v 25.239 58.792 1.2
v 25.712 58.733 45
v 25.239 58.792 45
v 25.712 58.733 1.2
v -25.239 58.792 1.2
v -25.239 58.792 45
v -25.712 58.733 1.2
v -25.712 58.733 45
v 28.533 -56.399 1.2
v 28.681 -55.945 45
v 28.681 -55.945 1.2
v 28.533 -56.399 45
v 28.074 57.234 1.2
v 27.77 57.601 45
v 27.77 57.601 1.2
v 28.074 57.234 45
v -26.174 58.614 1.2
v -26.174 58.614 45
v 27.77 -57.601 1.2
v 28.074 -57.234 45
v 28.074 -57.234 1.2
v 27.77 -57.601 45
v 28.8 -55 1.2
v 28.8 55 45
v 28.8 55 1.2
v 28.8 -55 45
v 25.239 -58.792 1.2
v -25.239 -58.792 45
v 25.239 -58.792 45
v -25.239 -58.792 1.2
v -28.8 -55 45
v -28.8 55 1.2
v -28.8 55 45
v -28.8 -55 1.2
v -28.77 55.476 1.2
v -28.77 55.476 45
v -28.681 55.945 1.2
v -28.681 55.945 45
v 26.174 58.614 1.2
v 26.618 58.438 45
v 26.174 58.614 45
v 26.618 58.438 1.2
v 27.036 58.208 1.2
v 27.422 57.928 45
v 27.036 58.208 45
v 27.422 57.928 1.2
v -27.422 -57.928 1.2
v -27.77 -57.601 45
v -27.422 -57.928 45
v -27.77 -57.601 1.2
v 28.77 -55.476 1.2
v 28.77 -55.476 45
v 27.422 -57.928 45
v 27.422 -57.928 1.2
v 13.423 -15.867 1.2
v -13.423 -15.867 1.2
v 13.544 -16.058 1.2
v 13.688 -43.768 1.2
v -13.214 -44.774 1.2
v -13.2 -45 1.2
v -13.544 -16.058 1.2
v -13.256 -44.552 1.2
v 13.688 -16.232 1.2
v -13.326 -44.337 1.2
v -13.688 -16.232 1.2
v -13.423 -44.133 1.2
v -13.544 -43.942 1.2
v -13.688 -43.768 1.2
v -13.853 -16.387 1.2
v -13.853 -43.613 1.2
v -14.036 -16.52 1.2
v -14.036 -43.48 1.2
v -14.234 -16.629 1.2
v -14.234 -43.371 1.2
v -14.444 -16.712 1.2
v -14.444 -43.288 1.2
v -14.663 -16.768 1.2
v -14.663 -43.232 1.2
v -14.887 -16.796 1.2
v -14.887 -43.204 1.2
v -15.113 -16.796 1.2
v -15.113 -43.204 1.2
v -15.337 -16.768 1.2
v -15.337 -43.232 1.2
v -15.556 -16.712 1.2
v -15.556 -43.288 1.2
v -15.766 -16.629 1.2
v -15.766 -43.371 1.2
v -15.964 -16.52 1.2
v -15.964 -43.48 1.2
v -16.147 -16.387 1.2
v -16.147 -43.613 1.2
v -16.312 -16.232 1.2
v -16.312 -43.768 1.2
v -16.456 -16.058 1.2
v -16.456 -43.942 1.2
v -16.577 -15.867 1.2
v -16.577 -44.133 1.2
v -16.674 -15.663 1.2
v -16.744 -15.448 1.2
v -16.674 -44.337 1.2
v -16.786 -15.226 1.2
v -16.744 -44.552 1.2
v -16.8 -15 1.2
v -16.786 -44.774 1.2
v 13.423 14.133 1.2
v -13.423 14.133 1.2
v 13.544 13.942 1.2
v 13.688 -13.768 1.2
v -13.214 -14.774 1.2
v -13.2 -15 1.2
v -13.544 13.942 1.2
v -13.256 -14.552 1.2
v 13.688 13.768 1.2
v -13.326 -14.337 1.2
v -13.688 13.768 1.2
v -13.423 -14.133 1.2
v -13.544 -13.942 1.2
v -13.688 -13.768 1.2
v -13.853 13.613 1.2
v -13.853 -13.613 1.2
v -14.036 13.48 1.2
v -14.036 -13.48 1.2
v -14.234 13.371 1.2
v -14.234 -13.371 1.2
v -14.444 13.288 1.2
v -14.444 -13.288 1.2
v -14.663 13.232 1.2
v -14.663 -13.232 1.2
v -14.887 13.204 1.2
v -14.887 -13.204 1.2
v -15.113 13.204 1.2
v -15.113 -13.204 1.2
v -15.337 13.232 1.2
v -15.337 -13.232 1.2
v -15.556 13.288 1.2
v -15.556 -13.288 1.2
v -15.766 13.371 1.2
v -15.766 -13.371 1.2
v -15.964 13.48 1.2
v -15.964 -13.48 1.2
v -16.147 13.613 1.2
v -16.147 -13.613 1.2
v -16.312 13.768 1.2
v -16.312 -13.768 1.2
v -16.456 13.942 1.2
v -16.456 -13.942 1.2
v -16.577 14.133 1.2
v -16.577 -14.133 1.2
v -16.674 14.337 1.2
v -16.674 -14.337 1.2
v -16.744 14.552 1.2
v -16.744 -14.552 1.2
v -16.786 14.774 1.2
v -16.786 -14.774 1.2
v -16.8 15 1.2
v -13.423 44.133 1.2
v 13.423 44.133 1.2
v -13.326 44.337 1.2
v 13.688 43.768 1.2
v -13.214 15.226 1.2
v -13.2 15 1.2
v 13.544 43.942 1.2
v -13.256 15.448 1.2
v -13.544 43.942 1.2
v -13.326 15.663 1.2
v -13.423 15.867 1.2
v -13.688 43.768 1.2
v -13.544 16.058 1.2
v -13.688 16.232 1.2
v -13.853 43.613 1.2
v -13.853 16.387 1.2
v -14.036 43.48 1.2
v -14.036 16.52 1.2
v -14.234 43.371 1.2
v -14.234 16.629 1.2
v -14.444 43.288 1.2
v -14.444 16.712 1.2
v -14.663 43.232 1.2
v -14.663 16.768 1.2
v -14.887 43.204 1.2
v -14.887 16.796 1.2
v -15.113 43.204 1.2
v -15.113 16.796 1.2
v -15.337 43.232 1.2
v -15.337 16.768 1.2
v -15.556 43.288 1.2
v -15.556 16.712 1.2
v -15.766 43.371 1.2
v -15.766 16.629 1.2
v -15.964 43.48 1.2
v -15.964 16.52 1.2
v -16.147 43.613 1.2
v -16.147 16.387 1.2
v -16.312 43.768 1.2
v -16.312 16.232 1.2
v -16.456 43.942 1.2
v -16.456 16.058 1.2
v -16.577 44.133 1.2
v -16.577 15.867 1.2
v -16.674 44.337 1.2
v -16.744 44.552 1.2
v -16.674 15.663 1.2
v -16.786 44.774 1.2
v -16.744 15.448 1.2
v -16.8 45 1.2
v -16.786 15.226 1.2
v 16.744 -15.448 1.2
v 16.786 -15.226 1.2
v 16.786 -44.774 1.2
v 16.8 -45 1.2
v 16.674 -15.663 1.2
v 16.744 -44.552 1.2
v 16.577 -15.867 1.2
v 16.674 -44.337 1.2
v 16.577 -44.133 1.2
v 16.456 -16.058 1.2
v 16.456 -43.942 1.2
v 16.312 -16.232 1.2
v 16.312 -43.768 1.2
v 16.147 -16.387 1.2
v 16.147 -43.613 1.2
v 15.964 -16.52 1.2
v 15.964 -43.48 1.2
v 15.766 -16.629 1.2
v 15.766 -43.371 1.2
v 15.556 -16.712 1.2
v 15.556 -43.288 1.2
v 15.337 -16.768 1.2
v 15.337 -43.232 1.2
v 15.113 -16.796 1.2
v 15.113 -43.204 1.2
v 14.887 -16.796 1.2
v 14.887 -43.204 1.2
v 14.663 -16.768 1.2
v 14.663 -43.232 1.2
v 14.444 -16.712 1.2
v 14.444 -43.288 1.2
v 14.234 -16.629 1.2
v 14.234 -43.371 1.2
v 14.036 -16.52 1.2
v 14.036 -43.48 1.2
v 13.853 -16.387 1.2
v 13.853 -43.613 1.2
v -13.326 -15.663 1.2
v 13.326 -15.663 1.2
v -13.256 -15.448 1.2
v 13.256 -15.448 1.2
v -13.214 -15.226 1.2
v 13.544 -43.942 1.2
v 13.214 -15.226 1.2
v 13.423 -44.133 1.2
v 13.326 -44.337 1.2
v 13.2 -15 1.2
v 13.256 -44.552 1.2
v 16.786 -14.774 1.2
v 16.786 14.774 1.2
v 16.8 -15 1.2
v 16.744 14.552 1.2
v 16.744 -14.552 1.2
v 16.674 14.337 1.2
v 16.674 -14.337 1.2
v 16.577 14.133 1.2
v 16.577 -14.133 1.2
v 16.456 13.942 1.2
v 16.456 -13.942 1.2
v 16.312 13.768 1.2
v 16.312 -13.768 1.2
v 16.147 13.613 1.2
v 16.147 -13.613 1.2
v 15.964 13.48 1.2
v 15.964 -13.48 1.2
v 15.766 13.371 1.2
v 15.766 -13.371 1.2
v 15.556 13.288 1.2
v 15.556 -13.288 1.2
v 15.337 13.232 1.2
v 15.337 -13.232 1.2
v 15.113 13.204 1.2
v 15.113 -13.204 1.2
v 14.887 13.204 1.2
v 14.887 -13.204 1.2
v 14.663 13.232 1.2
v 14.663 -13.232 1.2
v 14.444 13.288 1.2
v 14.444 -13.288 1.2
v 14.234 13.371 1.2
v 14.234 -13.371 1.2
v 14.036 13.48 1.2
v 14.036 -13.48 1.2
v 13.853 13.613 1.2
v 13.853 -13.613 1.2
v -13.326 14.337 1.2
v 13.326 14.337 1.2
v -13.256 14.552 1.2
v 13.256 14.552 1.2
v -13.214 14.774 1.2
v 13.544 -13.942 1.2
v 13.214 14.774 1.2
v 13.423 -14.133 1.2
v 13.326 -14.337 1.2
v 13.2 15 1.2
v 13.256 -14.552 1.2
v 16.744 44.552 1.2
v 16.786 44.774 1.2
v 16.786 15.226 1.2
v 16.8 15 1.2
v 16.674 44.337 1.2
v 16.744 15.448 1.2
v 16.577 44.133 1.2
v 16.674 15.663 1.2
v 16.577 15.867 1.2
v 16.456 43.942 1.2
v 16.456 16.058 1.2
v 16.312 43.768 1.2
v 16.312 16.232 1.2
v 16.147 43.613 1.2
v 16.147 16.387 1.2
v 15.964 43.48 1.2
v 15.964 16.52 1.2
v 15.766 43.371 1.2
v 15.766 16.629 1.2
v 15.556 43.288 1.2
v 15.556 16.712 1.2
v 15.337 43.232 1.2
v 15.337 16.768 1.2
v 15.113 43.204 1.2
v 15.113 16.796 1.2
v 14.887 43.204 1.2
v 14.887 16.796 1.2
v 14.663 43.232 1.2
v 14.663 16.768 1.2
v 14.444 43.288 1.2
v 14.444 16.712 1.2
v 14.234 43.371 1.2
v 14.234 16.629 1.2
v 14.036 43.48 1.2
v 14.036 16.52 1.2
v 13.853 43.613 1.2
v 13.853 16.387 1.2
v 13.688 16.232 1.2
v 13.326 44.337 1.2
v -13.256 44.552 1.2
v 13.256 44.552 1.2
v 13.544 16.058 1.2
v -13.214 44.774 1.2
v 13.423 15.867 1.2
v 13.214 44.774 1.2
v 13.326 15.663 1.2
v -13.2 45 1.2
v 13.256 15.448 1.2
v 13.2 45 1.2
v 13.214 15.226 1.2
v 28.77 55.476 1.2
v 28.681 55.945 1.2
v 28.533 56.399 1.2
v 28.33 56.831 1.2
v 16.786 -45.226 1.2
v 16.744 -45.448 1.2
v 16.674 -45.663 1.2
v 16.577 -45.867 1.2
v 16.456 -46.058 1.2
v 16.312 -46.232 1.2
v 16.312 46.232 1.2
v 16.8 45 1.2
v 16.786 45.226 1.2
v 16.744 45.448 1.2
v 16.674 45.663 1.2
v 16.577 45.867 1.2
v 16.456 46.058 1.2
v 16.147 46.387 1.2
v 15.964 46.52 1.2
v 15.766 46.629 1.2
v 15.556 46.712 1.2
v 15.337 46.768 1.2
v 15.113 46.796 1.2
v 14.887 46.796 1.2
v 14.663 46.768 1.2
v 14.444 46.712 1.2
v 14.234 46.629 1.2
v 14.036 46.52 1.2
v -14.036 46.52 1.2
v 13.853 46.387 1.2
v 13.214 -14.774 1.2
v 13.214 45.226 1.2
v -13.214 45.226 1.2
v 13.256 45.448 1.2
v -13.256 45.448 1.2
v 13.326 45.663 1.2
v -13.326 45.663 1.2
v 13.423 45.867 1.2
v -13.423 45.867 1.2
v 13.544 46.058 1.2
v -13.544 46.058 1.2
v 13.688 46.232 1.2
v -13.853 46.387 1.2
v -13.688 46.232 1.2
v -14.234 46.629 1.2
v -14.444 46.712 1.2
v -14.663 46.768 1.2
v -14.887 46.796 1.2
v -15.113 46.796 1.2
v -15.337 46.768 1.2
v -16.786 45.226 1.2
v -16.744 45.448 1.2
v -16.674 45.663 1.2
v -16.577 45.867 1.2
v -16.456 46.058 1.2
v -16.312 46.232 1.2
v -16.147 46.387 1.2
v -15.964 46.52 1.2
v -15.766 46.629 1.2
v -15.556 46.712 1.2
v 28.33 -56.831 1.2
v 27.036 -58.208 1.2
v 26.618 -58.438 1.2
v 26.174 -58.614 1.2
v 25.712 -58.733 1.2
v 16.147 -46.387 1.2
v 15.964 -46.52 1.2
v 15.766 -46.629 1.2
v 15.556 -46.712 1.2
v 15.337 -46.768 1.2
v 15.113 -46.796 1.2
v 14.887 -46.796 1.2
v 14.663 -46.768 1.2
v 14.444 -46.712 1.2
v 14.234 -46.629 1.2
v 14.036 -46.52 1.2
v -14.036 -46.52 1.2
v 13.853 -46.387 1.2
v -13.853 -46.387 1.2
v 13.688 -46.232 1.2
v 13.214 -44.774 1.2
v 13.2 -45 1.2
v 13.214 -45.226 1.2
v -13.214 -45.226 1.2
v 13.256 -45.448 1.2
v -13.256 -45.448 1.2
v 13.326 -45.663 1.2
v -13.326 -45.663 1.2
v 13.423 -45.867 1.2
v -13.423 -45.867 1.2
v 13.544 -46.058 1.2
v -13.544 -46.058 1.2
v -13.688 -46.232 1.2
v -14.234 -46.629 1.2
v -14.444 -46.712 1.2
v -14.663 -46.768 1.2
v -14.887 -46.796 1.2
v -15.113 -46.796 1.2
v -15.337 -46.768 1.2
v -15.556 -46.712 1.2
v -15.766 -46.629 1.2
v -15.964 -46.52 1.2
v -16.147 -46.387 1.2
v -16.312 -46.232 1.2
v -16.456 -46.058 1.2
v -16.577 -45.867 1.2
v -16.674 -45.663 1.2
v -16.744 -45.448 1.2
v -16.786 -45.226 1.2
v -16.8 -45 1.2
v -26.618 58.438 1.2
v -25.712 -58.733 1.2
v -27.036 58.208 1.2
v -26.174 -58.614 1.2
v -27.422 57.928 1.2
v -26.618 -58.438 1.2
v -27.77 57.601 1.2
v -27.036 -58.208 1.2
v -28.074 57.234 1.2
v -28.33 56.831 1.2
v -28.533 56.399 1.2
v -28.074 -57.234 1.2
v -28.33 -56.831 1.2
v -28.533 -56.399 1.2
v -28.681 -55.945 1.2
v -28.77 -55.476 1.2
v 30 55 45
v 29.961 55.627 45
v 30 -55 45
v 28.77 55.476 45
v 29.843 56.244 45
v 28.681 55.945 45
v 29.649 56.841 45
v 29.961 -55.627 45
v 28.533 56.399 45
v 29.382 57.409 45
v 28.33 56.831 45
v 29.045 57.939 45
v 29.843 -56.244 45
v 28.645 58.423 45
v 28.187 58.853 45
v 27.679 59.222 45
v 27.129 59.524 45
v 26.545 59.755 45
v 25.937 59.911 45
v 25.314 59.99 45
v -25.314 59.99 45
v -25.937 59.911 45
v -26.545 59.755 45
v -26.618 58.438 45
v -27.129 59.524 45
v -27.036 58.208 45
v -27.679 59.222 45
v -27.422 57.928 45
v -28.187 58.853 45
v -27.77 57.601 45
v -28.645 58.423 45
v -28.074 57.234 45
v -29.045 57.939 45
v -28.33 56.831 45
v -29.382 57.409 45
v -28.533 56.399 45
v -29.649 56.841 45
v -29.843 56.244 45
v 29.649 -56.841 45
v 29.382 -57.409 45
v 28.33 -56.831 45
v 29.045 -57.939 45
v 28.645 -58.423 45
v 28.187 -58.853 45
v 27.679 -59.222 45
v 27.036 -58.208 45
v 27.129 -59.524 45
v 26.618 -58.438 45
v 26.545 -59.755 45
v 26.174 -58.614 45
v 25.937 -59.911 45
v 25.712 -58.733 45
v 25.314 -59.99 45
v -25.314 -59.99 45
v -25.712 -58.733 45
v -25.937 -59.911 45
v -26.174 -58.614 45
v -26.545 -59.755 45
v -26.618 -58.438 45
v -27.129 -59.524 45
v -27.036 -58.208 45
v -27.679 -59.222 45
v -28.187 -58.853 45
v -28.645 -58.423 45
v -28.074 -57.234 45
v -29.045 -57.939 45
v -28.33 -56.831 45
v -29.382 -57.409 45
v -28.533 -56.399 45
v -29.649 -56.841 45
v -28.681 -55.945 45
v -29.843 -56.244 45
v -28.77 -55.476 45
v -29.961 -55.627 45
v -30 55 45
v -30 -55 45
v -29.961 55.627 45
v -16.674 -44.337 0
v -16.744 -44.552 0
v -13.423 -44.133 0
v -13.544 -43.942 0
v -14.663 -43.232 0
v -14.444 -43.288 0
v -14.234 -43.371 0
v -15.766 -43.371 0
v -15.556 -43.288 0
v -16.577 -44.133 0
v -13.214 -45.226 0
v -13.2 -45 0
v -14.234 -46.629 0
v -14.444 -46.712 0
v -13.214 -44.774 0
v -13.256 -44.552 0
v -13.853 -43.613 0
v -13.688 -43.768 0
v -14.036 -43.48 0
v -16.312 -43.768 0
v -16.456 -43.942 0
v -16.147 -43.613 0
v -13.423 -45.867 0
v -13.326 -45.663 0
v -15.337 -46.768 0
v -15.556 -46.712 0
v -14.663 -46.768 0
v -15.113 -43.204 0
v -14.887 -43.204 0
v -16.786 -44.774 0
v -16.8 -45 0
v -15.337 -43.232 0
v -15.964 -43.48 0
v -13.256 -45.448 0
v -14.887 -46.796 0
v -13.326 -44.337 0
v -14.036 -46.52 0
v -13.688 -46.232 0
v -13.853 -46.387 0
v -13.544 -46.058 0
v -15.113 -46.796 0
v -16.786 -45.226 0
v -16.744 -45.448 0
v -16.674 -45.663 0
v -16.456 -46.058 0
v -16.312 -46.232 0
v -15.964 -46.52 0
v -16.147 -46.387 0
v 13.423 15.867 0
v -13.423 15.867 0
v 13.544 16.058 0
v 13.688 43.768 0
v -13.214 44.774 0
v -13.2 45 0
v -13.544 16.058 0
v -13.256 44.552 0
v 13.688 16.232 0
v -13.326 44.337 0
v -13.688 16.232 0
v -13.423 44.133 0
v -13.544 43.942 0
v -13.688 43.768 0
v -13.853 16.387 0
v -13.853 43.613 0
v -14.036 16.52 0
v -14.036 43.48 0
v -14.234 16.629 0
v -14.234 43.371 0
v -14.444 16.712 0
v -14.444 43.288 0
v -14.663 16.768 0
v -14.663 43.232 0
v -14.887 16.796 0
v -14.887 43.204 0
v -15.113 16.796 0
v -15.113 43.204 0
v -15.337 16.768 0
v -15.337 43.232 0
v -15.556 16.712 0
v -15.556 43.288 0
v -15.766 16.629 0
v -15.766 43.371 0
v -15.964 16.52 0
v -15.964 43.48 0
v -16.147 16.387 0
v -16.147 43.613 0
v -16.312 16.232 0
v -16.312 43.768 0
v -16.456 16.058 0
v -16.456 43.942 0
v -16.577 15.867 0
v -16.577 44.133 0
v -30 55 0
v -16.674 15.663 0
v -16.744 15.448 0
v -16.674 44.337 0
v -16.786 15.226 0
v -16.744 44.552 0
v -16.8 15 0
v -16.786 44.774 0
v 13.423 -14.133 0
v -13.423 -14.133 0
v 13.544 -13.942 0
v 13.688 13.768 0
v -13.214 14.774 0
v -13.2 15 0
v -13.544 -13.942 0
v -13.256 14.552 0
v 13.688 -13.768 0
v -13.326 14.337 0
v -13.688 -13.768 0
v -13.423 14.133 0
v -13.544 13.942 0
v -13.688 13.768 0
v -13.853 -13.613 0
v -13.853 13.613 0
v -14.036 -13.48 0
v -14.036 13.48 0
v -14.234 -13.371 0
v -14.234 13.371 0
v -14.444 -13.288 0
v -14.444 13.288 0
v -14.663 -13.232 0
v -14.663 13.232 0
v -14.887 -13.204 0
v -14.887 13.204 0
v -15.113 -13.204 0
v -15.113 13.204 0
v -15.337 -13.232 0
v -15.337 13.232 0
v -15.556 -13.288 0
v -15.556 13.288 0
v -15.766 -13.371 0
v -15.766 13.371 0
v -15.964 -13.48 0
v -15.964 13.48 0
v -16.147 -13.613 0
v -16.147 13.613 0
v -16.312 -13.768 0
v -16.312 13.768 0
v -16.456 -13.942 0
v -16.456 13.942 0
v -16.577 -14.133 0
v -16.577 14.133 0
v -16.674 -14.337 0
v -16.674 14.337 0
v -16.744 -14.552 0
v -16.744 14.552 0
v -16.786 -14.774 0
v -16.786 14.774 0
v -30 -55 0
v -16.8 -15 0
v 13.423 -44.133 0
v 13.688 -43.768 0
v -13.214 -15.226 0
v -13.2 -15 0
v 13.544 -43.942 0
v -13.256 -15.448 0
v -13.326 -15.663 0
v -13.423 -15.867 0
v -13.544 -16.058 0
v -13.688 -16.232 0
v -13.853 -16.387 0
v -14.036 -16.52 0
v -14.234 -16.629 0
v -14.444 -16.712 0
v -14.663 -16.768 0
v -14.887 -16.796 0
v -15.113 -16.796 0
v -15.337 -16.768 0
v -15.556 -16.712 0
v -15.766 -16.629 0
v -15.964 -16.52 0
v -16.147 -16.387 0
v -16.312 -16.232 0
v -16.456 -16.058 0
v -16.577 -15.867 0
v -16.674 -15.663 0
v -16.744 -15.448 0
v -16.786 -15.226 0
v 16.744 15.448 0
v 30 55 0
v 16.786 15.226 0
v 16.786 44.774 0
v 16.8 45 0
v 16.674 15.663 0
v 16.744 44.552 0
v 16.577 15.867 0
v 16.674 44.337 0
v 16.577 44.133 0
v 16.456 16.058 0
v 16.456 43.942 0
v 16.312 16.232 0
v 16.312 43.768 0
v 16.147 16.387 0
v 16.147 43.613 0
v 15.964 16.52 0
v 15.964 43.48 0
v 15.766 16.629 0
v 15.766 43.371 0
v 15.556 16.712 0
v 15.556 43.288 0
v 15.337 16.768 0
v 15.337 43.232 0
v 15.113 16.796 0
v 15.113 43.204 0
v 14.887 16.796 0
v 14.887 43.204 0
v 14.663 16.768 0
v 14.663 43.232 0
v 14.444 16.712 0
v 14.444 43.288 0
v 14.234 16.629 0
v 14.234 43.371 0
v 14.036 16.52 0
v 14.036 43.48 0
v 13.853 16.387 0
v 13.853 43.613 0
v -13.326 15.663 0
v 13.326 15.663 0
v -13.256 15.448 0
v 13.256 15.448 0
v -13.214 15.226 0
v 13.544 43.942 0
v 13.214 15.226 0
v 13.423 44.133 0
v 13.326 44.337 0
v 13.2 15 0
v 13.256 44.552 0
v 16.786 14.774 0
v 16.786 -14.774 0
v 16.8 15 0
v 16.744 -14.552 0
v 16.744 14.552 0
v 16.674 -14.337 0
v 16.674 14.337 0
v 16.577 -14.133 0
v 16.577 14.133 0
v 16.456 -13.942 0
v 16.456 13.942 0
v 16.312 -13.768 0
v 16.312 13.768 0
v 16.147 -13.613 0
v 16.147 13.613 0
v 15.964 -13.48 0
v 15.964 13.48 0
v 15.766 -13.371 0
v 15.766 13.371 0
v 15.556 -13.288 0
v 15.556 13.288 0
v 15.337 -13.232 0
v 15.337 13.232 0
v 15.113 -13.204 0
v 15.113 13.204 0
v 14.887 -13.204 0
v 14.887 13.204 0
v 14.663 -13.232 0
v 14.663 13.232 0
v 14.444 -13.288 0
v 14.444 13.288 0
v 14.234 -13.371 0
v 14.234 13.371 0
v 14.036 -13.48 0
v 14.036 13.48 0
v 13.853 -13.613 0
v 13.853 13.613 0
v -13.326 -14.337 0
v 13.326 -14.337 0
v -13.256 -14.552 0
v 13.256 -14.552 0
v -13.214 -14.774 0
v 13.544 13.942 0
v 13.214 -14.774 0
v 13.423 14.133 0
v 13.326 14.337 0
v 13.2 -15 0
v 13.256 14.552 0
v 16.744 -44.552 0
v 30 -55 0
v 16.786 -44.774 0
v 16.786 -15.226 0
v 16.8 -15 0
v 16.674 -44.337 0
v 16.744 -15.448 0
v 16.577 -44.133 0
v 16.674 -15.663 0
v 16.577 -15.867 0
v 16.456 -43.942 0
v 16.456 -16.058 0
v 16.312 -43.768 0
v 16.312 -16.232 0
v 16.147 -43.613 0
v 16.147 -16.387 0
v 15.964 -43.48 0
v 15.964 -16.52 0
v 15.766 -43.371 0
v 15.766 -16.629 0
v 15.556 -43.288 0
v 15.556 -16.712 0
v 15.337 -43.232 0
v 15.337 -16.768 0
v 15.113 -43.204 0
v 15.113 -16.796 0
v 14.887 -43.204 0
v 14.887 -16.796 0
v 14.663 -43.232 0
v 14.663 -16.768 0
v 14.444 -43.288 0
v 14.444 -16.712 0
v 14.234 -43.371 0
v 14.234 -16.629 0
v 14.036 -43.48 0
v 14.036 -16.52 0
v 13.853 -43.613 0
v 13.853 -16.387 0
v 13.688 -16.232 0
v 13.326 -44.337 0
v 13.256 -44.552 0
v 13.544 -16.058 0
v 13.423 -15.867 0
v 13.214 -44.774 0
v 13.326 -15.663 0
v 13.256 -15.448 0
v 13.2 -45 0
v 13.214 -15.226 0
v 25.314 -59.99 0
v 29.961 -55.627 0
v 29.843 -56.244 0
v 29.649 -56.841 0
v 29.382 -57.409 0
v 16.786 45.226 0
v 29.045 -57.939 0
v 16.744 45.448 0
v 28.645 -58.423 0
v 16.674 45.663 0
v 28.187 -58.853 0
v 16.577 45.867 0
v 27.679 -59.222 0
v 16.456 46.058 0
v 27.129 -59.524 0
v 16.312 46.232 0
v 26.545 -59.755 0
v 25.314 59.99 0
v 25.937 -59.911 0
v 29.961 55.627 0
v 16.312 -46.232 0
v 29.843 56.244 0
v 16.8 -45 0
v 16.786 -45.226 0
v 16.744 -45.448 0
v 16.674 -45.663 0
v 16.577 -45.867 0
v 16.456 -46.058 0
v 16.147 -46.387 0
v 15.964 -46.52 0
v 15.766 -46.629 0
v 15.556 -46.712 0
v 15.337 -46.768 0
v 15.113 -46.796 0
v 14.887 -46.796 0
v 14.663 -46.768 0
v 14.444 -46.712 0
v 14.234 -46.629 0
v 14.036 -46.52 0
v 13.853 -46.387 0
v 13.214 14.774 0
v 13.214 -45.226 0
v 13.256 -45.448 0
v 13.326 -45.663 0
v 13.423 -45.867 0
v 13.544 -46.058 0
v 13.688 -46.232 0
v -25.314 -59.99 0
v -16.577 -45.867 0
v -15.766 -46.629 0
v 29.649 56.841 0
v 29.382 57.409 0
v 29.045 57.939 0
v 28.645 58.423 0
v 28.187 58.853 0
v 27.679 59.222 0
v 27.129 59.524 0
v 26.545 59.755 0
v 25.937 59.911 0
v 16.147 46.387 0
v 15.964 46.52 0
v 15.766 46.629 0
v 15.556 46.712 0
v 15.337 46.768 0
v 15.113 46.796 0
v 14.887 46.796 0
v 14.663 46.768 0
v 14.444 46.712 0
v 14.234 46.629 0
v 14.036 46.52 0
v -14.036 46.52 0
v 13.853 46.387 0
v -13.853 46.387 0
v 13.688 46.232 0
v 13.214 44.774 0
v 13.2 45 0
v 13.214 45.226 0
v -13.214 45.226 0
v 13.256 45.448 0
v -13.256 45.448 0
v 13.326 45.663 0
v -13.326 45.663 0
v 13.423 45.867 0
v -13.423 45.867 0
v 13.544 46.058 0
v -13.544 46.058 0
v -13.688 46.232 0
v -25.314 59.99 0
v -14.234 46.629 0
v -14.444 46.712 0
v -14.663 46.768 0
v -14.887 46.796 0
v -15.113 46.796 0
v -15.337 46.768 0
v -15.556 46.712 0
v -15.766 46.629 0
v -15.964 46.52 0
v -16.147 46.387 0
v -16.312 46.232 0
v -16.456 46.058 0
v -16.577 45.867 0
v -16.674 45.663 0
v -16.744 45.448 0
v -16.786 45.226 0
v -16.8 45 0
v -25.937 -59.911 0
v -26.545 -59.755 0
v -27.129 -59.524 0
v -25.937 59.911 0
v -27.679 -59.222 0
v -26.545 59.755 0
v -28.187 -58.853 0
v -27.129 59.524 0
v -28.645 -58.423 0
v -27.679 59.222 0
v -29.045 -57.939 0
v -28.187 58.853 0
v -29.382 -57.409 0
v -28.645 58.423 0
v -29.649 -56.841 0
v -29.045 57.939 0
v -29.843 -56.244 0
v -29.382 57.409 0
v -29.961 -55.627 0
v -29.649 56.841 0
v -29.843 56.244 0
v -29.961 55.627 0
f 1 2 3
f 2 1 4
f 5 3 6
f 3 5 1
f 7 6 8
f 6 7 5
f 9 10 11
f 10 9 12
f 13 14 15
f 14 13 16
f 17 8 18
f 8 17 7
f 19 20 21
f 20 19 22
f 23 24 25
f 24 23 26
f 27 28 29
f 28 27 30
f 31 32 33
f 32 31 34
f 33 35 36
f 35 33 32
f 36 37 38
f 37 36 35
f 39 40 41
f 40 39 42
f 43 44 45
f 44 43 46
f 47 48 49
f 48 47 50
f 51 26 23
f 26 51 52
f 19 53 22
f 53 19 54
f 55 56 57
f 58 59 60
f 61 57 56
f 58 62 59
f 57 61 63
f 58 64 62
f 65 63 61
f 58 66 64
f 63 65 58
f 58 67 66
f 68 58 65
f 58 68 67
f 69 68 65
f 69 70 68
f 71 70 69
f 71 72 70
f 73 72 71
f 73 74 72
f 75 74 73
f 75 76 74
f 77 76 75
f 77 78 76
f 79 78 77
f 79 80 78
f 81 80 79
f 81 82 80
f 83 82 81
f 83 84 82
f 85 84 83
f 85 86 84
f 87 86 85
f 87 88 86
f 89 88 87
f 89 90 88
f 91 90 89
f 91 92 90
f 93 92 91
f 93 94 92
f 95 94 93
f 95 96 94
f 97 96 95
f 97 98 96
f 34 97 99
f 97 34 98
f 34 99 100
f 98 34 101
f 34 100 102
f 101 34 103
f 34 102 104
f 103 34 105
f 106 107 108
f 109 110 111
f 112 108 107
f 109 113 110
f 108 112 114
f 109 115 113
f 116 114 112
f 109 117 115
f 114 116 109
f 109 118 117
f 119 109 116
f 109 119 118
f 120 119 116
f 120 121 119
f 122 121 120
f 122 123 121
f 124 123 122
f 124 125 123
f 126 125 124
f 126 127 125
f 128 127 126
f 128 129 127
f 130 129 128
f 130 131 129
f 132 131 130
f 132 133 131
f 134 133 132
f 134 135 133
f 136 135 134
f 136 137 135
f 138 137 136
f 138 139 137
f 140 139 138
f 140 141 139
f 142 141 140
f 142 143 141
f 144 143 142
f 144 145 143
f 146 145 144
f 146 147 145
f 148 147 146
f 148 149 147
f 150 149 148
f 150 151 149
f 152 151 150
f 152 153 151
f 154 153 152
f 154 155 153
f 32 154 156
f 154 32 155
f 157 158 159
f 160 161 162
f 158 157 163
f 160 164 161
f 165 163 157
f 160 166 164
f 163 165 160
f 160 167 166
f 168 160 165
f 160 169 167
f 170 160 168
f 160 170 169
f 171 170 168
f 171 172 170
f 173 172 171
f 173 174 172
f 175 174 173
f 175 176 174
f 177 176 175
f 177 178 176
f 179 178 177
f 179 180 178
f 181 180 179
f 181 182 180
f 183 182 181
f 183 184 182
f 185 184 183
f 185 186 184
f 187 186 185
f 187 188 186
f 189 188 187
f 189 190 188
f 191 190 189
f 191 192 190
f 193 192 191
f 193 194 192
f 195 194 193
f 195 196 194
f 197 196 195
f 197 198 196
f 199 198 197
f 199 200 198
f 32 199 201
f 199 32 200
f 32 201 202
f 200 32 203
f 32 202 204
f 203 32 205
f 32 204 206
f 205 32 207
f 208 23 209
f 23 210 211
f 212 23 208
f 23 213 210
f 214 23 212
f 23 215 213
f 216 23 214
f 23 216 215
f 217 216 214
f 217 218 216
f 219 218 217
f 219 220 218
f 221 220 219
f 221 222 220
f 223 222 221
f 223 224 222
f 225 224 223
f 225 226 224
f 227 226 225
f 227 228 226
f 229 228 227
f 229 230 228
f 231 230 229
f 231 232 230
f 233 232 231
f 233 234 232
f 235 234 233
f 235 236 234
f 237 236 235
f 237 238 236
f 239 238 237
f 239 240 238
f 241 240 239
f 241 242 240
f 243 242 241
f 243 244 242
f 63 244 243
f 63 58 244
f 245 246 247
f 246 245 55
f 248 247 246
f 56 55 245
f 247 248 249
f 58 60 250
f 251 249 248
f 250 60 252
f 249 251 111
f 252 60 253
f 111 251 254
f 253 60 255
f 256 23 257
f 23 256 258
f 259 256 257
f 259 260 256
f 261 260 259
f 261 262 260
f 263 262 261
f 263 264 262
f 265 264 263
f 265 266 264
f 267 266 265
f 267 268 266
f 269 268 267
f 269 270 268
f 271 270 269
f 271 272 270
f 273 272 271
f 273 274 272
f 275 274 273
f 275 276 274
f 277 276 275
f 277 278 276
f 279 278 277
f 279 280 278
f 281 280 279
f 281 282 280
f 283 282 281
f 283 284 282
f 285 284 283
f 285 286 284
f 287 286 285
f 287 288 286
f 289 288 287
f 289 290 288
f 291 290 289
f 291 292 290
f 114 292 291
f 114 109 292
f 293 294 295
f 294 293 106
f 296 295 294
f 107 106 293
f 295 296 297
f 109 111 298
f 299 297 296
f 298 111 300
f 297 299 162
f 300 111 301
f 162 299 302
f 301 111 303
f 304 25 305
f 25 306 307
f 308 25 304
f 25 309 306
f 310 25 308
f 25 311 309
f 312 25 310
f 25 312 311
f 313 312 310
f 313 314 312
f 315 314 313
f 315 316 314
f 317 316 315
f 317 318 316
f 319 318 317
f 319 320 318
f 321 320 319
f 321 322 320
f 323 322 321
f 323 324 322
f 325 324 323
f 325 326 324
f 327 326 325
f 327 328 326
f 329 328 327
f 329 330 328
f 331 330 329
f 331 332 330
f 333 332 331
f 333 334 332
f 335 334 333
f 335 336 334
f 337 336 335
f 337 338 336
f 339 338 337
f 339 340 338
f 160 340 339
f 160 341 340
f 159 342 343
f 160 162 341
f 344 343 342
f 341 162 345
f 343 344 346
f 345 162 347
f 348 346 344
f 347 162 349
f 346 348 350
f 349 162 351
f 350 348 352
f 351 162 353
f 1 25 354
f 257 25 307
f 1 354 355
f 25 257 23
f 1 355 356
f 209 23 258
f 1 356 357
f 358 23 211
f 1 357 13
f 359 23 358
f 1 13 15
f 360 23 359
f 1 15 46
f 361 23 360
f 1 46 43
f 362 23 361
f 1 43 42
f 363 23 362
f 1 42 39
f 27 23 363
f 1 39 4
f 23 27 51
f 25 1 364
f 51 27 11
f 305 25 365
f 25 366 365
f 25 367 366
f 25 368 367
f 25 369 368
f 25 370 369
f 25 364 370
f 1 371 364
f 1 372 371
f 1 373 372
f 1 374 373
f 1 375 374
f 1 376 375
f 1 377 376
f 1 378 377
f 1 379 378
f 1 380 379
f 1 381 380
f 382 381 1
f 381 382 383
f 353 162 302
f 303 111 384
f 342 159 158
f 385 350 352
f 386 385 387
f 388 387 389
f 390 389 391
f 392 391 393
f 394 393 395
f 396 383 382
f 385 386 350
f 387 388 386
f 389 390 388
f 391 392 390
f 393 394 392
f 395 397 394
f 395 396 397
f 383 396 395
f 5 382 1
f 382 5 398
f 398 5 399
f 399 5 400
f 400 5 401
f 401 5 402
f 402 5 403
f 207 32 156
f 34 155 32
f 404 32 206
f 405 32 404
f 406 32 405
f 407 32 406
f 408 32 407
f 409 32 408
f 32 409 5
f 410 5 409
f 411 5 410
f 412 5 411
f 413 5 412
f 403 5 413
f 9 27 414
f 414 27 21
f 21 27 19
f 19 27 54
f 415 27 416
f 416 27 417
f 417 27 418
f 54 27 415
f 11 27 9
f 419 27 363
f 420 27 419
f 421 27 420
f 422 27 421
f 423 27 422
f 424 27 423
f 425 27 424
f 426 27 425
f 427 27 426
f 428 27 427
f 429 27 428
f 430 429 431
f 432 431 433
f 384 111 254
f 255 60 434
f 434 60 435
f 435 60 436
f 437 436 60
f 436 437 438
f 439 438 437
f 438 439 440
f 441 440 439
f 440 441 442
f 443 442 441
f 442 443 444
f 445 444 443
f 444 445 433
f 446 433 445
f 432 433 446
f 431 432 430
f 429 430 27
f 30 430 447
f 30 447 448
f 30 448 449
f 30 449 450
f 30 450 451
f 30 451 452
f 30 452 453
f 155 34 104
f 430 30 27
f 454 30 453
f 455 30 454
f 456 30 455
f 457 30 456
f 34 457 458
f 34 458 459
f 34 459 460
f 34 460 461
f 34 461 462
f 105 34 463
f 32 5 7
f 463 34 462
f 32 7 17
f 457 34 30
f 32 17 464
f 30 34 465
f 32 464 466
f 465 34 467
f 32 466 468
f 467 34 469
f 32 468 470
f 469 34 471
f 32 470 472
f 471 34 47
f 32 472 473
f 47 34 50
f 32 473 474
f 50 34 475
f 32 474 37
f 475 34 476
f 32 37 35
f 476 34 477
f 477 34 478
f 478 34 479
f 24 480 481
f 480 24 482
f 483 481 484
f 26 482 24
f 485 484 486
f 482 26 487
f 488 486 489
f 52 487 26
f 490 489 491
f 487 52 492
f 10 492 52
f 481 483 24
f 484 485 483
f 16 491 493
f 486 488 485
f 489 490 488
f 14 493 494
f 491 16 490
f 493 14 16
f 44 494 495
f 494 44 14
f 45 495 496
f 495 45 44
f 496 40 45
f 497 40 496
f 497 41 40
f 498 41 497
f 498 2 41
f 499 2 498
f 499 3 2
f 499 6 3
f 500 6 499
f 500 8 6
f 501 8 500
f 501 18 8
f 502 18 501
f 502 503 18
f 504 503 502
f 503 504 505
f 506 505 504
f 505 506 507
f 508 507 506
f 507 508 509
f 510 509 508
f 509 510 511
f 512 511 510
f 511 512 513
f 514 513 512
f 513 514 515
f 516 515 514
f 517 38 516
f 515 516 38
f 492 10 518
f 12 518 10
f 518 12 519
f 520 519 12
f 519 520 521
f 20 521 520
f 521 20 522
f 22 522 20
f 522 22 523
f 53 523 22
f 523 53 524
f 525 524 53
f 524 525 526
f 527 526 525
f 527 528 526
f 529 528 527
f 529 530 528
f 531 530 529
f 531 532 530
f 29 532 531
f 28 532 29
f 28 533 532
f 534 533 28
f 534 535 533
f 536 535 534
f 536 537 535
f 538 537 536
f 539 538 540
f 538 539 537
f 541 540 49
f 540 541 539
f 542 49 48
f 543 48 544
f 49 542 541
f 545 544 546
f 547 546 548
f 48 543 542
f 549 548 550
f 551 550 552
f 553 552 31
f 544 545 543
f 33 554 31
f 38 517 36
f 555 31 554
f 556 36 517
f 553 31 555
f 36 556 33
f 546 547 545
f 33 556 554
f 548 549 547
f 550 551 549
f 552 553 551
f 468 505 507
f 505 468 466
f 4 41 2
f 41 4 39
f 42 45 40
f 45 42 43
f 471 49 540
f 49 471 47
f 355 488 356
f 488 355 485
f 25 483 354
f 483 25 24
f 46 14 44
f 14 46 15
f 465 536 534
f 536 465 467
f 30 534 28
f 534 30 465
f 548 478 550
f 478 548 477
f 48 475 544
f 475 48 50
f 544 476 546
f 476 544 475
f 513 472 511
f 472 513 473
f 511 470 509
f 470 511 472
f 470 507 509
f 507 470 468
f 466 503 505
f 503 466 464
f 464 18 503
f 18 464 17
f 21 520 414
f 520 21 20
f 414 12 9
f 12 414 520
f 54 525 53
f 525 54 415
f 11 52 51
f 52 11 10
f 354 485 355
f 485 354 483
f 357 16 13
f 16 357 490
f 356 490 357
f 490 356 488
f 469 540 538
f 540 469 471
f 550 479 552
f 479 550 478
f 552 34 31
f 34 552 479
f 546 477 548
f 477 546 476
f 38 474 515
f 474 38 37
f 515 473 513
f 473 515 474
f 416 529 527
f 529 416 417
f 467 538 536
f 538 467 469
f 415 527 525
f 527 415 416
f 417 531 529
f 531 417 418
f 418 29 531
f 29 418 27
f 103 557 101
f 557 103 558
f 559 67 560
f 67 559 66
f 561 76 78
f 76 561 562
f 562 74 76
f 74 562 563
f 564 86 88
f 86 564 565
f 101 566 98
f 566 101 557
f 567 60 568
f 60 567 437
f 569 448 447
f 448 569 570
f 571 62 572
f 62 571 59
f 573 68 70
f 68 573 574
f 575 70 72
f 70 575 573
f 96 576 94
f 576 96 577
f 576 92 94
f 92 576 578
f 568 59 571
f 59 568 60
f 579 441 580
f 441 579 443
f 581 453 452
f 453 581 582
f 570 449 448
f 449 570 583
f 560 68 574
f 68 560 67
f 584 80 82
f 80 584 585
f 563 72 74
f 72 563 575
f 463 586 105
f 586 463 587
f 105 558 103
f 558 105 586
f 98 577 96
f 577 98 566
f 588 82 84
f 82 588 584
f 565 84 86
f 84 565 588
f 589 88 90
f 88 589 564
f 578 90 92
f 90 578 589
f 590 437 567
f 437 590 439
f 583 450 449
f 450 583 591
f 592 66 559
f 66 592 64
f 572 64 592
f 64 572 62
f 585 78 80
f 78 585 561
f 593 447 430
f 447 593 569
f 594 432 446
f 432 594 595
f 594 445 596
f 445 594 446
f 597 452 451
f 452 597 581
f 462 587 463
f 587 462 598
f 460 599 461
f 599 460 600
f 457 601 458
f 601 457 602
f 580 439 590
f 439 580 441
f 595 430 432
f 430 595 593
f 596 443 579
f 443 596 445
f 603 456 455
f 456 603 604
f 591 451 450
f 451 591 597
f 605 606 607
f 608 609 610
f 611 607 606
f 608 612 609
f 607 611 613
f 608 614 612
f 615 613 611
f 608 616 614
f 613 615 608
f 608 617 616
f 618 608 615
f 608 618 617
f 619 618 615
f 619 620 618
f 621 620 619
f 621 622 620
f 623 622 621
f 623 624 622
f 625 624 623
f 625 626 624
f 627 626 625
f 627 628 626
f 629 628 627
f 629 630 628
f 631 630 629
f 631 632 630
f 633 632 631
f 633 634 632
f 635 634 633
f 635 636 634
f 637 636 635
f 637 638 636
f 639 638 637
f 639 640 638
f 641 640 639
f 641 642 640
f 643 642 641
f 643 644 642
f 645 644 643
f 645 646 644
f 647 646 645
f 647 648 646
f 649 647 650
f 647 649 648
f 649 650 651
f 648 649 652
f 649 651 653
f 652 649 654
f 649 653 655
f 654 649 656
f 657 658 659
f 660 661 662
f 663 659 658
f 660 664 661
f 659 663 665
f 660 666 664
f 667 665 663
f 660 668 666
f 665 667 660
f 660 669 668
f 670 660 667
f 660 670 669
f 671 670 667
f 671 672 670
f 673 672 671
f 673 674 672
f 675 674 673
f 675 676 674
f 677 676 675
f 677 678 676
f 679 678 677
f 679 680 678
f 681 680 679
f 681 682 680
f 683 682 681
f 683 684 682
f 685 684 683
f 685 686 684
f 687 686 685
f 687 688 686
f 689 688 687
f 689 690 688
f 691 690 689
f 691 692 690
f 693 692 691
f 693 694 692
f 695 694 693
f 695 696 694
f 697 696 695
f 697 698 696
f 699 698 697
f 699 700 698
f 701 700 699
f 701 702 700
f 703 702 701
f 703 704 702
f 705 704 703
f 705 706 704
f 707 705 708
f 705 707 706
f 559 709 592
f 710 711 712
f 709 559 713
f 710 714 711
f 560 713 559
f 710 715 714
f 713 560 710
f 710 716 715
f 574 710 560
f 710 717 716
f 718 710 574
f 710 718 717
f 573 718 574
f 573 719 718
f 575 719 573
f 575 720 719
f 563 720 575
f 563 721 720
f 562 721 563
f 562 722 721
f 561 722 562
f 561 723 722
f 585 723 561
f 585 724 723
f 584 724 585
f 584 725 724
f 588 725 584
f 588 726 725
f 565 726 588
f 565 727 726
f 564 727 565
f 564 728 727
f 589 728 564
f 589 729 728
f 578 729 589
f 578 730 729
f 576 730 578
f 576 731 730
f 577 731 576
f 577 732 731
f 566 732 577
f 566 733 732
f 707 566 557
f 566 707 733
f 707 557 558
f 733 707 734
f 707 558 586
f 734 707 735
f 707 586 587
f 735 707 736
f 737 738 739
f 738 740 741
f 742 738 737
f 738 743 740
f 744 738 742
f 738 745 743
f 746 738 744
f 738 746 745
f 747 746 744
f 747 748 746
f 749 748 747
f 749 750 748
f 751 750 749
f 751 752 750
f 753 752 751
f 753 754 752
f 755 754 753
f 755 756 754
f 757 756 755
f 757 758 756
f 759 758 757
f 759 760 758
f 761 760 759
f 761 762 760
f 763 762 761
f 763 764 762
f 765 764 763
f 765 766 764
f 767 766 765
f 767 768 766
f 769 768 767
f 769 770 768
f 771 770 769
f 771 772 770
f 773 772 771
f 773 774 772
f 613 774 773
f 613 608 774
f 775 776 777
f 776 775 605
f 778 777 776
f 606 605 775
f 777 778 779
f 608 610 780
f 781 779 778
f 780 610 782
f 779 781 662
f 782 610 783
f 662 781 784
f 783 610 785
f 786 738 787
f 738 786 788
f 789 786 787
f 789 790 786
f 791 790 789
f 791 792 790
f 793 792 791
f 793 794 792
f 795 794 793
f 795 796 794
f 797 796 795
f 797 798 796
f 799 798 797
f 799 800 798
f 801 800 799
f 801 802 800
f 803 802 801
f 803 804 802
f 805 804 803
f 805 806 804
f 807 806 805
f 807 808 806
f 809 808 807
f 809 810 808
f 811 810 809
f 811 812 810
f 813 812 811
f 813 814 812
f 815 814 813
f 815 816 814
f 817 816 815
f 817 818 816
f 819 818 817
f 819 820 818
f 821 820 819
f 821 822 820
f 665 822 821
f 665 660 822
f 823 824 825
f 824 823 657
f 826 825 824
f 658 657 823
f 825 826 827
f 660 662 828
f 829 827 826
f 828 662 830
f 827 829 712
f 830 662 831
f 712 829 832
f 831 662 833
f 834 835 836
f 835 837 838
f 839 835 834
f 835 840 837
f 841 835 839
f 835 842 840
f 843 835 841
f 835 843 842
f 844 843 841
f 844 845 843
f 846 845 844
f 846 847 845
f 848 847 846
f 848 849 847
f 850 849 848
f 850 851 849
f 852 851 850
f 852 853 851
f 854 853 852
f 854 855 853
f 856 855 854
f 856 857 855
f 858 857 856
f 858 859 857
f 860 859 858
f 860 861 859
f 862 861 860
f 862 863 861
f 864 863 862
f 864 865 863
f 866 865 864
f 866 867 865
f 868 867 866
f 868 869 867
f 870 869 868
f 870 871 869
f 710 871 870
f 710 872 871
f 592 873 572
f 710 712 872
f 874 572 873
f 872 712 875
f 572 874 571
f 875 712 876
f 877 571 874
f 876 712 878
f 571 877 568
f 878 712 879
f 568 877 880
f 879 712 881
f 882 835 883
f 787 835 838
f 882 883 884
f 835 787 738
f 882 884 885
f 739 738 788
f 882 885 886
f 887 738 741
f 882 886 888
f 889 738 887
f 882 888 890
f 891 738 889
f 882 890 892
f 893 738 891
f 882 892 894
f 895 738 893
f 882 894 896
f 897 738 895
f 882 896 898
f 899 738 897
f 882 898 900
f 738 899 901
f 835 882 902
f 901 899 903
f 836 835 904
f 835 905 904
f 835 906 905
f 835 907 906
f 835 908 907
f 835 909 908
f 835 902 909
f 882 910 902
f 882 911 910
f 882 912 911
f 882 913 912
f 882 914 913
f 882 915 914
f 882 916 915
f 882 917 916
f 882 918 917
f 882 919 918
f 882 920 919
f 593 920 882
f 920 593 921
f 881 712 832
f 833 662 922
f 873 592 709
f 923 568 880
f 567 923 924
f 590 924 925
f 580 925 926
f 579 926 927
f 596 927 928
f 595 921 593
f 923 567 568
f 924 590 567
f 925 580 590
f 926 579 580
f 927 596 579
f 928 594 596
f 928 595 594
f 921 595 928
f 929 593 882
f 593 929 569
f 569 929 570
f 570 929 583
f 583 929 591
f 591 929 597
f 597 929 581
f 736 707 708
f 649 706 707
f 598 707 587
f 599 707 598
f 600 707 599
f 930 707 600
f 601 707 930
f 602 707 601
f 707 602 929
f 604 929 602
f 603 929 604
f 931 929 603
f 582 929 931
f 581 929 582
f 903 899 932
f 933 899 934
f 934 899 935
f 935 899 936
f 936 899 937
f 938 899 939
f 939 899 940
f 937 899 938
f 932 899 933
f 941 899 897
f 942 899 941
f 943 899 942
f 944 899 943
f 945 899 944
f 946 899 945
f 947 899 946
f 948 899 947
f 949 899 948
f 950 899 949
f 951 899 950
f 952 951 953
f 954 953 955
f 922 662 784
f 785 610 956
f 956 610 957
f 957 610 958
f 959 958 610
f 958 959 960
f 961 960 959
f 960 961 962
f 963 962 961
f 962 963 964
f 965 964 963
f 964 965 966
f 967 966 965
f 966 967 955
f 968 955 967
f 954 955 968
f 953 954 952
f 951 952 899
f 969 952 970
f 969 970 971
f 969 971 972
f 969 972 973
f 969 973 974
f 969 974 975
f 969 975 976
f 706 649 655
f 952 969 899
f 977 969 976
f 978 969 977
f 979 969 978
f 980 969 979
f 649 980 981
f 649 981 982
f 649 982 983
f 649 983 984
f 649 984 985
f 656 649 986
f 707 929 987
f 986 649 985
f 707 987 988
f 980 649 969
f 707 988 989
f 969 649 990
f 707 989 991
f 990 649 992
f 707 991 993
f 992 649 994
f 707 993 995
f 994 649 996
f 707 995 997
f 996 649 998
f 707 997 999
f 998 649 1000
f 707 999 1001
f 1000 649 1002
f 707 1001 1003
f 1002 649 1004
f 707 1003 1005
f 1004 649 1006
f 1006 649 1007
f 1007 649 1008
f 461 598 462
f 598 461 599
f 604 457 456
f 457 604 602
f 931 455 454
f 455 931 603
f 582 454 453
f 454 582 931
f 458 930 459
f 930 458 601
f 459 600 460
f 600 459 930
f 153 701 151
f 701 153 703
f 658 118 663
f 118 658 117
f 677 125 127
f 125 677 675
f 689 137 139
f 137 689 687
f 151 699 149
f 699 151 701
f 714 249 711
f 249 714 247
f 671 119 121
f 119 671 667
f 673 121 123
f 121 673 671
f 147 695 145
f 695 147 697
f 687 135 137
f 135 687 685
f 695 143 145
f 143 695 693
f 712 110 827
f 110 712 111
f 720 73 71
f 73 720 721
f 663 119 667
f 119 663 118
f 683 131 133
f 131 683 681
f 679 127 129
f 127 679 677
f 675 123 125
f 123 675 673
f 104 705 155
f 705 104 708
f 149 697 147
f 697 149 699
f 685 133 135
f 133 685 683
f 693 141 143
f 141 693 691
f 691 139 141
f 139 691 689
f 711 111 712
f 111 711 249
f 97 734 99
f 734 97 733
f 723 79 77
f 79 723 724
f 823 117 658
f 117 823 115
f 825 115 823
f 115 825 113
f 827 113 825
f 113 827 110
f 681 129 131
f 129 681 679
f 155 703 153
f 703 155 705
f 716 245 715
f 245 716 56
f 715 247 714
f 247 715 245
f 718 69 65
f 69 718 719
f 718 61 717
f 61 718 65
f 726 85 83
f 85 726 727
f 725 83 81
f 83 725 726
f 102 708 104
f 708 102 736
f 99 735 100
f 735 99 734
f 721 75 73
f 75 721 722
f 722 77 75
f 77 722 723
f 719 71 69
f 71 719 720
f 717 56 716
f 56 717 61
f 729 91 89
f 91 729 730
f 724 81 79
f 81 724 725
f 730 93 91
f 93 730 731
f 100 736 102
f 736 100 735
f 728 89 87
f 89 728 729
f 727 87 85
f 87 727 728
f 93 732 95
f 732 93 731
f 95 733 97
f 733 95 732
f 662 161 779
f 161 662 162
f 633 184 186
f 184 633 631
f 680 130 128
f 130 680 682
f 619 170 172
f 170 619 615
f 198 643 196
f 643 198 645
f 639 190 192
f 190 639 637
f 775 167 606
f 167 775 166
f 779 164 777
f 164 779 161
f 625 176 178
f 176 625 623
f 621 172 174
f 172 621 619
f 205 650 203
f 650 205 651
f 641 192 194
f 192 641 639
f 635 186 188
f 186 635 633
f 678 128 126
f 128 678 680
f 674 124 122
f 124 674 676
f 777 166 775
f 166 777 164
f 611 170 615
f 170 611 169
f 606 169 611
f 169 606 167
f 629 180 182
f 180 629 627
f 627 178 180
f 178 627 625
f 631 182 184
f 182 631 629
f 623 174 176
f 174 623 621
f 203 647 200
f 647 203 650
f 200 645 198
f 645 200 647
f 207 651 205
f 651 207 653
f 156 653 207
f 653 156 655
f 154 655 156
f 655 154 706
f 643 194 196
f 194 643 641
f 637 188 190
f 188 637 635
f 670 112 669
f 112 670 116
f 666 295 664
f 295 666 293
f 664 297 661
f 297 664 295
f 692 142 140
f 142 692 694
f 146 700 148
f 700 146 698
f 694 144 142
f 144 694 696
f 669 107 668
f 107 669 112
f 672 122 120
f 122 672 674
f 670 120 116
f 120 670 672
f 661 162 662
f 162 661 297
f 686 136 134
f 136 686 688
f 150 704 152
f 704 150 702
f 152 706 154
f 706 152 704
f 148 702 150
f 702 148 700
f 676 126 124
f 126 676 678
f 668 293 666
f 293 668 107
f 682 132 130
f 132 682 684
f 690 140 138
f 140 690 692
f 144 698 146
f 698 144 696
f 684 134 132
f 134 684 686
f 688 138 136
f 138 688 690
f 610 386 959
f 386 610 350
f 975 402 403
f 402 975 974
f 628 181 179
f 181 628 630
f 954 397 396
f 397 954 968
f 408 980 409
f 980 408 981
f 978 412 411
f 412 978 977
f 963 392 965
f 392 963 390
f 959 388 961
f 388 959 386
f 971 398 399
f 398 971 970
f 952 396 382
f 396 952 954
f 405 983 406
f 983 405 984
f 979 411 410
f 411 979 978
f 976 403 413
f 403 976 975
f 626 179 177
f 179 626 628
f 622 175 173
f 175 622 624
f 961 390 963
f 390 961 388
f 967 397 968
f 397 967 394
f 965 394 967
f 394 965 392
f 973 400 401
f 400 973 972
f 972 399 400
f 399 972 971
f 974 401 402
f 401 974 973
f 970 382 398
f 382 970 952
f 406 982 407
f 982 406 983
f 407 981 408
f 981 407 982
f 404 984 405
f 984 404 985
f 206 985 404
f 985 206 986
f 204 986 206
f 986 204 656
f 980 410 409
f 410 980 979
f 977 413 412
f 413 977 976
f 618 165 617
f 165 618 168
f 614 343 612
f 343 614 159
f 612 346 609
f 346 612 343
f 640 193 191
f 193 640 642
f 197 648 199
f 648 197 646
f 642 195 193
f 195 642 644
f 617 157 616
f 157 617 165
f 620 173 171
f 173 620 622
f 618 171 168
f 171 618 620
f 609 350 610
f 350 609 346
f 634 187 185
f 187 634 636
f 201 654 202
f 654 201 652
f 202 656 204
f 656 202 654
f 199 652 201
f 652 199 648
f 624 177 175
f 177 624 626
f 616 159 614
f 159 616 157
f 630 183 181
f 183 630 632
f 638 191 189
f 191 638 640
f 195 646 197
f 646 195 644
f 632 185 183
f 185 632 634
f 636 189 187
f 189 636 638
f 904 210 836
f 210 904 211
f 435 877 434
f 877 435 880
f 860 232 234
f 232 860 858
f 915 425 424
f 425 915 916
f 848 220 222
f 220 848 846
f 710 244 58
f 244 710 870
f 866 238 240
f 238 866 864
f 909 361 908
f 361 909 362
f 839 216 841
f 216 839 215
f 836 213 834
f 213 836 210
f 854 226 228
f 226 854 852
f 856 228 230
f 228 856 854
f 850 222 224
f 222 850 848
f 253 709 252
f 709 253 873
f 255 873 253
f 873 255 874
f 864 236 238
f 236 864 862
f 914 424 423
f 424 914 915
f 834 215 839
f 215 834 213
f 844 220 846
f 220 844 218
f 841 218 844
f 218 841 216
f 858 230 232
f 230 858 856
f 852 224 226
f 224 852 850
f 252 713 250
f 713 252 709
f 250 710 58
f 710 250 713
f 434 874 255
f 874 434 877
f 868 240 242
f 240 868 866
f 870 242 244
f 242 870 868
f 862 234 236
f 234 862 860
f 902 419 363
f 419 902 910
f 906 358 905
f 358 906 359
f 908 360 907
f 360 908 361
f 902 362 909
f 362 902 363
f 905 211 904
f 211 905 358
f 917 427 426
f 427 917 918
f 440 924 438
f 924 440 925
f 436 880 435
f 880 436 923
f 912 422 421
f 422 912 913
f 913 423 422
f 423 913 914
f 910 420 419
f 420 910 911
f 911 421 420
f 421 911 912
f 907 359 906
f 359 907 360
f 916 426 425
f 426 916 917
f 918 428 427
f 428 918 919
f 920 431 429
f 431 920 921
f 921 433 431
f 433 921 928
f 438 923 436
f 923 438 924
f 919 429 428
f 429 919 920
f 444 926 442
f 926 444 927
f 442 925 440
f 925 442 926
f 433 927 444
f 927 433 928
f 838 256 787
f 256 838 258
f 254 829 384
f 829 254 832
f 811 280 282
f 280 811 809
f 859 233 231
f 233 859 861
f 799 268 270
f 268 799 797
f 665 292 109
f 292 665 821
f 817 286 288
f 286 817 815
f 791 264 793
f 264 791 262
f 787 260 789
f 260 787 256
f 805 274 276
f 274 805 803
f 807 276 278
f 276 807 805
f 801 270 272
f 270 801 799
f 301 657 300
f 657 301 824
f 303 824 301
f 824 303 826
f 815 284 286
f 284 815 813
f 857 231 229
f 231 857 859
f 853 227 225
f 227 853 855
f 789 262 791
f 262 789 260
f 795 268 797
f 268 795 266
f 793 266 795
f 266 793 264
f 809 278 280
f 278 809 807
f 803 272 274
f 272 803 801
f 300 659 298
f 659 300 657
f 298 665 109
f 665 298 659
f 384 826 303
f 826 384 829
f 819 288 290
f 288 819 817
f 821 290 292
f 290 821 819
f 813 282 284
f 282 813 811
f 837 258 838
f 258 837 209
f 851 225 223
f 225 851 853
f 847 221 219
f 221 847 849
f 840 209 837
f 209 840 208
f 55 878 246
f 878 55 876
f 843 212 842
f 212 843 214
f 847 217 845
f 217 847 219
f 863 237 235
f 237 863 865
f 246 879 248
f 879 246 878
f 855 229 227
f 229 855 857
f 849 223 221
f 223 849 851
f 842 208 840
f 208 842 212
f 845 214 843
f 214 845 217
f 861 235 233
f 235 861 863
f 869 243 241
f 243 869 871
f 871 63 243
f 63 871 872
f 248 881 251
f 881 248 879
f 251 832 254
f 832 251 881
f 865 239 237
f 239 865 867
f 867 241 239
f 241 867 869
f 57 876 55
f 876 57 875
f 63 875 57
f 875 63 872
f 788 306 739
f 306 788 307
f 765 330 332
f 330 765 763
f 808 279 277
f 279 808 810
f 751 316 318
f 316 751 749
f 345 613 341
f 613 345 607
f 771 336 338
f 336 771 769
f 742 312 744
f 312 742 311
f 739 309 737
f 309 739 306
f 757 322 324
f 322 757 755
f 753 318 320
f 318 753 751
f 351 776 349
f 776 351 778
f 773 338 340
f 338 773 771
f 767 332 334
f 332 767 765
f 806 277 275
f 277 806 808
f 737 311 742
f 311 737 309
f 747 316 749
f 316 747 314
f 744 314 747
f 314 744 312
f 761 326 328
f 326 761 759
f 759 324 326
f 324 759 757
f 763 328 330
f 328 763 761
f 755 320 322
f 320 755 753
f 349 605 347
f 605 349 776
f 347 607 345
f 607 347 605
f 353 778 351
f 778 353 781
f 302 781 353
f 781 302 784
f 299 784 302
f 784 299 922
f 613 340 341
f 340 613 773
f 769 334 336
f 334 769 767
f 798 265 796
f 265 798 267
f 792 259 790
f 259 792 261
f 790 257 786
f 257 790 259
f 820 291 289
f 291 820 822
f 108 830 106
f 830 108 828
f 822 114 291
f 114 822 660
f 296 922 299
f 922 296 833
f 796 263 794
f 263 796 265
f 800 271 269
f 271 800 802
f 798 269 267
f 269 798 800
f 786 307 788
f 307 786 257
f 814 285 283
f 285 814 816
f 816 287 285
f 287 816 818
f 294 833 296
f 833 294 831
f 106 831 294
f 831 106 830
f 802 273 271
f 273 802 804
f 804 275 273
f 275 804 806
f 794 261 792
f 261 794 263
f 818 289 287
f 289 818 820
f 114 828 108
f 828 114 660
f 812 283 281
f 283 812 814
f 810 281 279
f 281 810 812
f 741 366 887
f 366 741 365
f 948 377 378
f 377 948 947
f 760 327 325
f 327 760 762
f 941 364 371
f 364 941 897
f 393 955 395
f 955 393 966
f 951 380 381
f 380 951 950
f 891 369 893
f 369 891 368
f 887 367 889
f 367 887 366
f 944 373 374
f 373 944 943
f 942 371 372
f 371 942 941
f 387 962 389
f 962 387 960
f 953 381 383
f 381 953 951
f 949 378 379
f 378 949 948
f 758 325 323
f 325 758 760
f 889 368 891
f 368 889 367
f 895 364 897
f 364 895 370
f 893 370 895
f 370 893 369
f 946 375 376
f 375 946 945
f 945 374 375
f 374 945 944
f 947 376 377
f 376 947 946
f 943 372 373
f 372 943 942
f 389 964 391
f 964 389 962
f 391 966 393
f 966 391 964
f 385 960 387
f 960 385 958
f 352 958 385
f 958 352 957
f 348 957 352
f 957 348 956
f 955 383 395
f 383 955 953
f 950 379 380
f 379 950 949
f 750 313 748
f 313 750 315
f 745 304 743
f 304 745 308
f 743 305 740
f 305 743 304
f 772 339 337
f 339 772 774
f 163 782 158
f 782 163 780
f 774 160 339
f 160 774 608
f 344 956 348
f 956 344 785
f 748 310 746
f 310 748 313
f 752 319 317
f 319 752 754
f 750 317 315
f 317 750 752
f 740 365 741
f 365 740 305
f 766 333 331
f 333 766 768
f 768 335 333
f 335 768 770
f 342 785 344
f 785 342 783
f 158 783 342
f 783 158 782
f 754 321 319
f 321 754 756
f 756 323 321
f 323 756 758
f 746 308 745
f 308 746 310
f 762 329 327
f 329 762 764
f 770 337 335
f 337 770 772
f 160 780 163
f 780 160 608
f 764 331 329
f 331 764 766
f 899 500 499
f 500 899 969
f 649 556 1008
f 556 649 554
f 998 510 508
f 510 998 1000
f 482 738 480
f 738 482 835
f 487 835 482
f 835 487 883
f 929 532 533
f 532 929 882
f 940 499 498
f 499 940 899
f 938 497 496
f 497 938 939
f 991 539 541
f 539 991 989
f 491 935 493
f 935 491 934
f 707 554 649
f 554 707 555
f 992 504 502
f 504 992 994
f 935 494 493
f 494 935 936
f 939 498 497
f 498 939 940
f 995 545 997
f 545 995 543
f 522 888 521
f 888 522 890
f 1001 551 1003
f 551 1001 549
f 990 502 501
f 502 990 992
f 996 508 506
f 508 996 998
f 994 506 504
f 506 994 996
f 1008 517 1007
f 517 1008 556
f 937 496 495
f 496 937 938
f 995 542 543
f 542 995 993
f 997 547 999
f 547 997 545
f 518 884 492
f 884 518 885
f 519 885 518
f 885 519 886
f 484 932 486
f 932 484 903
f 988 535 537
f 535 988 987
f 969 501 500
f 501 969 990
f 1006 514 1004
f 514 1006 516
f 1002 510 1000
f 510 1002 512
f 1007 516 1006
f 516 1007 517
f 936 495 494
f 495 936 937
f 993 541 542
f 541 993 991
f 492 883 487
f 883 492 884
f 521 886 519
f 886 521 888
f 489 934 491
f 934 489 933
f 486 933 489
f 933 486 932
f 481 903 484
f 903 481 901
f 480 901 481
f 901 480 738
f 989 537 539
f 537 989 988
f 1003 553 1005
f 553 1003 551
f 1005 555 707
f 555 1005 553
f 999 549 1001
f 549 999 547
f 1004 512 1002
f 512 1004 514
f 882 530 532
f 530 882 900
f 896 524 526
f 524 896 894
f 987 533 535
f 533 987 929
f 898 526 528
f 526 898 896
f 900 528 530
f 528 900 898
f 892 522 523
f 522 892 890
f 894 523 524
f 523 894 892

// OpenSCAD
$fn = 50;


difference() {
	union() {
		hull() {
			translate(v = [-25.0000000000, 55.0000000000, 0]) {
				cylinder(h = 45, r = 5);
			}
			translate(v = [25.0000000000, 55.0000000000, 0]) {
				cylinder(h = 45, r = 5);
			}
			translate(v = [-25.0000000000, -55.0000000000, 0]) {
				cylinder(h = 45, r = 5);
			}
			translate(v = [25.0000000000, -55.0000000000, 0]) {
				cylinder(h = 45, r = 5);
			}
		}
	}
	union() {
		translate(v = [0, 0, 1.2000000000]) {
			hull() {
				translate(v = [-25.0000000000, 55.0000000000, 0]) {
					cylinder(h = 43.8000000000, r = 3.8000000000);
				}
				translate(v = [25.0000000000, 55.0000000000, 0]) {
					cylinder(h = 43.8000000000, r = 3.8000000000);
				}
				translate(v = [-25.0000000000, -55.0000000000, 0]) {
					cylinder(h = 43.8000000000, r = 3.8000000000);
				}
				translate(v = [25.0000000000, -55.0000000000, 0]) {
					cylinder(h = 43.8000000000, r = 3.8000000000);
				}
			}
		}
		#translate(v = [-15.0000000000, -45.0000000000, 0]) {
			cylinder(h = 1.2000000000, r = 1.8000000000);
		}
		#translate(v = [-15.0000000000, -15.0000000000, 0]) {
			cylinder(h = 1.2000000000, r = 1.8000000000);
		}
		#translate(v = [-15.0000000000, 15.0000000000, 0]) {
			cylinder(h = 1.2000000000, r = 1.8000000000);
		}
		#translate(v = [-15.0000000000, 45.0000000000, 0]) {
			cylinder(h = 1.2000000000, r = 1.8000000000);
		}
		#translate(v = [15.0000000000, -45.0000000000, 0]) {
			cylinder(h = 1.2000000000, r = 1.8000000000);
		}
		#translate(v = [15.0000000000, -15.0000000000, 0]) {
			cylinder(h = 1.2000000000, r = 1.8000000000);
		}
		#translate(v = [15.0000000000, 15.0000000000, 0]) {
			cylinder(h = 1.2000000000, r = 1.8000000000);
		}
		#translate(v = [15.0000000000, 45.0000000000, 0]) {
			cylinder(h = 1.2000000000, r = 1.8000000000);
		}
	}
}
